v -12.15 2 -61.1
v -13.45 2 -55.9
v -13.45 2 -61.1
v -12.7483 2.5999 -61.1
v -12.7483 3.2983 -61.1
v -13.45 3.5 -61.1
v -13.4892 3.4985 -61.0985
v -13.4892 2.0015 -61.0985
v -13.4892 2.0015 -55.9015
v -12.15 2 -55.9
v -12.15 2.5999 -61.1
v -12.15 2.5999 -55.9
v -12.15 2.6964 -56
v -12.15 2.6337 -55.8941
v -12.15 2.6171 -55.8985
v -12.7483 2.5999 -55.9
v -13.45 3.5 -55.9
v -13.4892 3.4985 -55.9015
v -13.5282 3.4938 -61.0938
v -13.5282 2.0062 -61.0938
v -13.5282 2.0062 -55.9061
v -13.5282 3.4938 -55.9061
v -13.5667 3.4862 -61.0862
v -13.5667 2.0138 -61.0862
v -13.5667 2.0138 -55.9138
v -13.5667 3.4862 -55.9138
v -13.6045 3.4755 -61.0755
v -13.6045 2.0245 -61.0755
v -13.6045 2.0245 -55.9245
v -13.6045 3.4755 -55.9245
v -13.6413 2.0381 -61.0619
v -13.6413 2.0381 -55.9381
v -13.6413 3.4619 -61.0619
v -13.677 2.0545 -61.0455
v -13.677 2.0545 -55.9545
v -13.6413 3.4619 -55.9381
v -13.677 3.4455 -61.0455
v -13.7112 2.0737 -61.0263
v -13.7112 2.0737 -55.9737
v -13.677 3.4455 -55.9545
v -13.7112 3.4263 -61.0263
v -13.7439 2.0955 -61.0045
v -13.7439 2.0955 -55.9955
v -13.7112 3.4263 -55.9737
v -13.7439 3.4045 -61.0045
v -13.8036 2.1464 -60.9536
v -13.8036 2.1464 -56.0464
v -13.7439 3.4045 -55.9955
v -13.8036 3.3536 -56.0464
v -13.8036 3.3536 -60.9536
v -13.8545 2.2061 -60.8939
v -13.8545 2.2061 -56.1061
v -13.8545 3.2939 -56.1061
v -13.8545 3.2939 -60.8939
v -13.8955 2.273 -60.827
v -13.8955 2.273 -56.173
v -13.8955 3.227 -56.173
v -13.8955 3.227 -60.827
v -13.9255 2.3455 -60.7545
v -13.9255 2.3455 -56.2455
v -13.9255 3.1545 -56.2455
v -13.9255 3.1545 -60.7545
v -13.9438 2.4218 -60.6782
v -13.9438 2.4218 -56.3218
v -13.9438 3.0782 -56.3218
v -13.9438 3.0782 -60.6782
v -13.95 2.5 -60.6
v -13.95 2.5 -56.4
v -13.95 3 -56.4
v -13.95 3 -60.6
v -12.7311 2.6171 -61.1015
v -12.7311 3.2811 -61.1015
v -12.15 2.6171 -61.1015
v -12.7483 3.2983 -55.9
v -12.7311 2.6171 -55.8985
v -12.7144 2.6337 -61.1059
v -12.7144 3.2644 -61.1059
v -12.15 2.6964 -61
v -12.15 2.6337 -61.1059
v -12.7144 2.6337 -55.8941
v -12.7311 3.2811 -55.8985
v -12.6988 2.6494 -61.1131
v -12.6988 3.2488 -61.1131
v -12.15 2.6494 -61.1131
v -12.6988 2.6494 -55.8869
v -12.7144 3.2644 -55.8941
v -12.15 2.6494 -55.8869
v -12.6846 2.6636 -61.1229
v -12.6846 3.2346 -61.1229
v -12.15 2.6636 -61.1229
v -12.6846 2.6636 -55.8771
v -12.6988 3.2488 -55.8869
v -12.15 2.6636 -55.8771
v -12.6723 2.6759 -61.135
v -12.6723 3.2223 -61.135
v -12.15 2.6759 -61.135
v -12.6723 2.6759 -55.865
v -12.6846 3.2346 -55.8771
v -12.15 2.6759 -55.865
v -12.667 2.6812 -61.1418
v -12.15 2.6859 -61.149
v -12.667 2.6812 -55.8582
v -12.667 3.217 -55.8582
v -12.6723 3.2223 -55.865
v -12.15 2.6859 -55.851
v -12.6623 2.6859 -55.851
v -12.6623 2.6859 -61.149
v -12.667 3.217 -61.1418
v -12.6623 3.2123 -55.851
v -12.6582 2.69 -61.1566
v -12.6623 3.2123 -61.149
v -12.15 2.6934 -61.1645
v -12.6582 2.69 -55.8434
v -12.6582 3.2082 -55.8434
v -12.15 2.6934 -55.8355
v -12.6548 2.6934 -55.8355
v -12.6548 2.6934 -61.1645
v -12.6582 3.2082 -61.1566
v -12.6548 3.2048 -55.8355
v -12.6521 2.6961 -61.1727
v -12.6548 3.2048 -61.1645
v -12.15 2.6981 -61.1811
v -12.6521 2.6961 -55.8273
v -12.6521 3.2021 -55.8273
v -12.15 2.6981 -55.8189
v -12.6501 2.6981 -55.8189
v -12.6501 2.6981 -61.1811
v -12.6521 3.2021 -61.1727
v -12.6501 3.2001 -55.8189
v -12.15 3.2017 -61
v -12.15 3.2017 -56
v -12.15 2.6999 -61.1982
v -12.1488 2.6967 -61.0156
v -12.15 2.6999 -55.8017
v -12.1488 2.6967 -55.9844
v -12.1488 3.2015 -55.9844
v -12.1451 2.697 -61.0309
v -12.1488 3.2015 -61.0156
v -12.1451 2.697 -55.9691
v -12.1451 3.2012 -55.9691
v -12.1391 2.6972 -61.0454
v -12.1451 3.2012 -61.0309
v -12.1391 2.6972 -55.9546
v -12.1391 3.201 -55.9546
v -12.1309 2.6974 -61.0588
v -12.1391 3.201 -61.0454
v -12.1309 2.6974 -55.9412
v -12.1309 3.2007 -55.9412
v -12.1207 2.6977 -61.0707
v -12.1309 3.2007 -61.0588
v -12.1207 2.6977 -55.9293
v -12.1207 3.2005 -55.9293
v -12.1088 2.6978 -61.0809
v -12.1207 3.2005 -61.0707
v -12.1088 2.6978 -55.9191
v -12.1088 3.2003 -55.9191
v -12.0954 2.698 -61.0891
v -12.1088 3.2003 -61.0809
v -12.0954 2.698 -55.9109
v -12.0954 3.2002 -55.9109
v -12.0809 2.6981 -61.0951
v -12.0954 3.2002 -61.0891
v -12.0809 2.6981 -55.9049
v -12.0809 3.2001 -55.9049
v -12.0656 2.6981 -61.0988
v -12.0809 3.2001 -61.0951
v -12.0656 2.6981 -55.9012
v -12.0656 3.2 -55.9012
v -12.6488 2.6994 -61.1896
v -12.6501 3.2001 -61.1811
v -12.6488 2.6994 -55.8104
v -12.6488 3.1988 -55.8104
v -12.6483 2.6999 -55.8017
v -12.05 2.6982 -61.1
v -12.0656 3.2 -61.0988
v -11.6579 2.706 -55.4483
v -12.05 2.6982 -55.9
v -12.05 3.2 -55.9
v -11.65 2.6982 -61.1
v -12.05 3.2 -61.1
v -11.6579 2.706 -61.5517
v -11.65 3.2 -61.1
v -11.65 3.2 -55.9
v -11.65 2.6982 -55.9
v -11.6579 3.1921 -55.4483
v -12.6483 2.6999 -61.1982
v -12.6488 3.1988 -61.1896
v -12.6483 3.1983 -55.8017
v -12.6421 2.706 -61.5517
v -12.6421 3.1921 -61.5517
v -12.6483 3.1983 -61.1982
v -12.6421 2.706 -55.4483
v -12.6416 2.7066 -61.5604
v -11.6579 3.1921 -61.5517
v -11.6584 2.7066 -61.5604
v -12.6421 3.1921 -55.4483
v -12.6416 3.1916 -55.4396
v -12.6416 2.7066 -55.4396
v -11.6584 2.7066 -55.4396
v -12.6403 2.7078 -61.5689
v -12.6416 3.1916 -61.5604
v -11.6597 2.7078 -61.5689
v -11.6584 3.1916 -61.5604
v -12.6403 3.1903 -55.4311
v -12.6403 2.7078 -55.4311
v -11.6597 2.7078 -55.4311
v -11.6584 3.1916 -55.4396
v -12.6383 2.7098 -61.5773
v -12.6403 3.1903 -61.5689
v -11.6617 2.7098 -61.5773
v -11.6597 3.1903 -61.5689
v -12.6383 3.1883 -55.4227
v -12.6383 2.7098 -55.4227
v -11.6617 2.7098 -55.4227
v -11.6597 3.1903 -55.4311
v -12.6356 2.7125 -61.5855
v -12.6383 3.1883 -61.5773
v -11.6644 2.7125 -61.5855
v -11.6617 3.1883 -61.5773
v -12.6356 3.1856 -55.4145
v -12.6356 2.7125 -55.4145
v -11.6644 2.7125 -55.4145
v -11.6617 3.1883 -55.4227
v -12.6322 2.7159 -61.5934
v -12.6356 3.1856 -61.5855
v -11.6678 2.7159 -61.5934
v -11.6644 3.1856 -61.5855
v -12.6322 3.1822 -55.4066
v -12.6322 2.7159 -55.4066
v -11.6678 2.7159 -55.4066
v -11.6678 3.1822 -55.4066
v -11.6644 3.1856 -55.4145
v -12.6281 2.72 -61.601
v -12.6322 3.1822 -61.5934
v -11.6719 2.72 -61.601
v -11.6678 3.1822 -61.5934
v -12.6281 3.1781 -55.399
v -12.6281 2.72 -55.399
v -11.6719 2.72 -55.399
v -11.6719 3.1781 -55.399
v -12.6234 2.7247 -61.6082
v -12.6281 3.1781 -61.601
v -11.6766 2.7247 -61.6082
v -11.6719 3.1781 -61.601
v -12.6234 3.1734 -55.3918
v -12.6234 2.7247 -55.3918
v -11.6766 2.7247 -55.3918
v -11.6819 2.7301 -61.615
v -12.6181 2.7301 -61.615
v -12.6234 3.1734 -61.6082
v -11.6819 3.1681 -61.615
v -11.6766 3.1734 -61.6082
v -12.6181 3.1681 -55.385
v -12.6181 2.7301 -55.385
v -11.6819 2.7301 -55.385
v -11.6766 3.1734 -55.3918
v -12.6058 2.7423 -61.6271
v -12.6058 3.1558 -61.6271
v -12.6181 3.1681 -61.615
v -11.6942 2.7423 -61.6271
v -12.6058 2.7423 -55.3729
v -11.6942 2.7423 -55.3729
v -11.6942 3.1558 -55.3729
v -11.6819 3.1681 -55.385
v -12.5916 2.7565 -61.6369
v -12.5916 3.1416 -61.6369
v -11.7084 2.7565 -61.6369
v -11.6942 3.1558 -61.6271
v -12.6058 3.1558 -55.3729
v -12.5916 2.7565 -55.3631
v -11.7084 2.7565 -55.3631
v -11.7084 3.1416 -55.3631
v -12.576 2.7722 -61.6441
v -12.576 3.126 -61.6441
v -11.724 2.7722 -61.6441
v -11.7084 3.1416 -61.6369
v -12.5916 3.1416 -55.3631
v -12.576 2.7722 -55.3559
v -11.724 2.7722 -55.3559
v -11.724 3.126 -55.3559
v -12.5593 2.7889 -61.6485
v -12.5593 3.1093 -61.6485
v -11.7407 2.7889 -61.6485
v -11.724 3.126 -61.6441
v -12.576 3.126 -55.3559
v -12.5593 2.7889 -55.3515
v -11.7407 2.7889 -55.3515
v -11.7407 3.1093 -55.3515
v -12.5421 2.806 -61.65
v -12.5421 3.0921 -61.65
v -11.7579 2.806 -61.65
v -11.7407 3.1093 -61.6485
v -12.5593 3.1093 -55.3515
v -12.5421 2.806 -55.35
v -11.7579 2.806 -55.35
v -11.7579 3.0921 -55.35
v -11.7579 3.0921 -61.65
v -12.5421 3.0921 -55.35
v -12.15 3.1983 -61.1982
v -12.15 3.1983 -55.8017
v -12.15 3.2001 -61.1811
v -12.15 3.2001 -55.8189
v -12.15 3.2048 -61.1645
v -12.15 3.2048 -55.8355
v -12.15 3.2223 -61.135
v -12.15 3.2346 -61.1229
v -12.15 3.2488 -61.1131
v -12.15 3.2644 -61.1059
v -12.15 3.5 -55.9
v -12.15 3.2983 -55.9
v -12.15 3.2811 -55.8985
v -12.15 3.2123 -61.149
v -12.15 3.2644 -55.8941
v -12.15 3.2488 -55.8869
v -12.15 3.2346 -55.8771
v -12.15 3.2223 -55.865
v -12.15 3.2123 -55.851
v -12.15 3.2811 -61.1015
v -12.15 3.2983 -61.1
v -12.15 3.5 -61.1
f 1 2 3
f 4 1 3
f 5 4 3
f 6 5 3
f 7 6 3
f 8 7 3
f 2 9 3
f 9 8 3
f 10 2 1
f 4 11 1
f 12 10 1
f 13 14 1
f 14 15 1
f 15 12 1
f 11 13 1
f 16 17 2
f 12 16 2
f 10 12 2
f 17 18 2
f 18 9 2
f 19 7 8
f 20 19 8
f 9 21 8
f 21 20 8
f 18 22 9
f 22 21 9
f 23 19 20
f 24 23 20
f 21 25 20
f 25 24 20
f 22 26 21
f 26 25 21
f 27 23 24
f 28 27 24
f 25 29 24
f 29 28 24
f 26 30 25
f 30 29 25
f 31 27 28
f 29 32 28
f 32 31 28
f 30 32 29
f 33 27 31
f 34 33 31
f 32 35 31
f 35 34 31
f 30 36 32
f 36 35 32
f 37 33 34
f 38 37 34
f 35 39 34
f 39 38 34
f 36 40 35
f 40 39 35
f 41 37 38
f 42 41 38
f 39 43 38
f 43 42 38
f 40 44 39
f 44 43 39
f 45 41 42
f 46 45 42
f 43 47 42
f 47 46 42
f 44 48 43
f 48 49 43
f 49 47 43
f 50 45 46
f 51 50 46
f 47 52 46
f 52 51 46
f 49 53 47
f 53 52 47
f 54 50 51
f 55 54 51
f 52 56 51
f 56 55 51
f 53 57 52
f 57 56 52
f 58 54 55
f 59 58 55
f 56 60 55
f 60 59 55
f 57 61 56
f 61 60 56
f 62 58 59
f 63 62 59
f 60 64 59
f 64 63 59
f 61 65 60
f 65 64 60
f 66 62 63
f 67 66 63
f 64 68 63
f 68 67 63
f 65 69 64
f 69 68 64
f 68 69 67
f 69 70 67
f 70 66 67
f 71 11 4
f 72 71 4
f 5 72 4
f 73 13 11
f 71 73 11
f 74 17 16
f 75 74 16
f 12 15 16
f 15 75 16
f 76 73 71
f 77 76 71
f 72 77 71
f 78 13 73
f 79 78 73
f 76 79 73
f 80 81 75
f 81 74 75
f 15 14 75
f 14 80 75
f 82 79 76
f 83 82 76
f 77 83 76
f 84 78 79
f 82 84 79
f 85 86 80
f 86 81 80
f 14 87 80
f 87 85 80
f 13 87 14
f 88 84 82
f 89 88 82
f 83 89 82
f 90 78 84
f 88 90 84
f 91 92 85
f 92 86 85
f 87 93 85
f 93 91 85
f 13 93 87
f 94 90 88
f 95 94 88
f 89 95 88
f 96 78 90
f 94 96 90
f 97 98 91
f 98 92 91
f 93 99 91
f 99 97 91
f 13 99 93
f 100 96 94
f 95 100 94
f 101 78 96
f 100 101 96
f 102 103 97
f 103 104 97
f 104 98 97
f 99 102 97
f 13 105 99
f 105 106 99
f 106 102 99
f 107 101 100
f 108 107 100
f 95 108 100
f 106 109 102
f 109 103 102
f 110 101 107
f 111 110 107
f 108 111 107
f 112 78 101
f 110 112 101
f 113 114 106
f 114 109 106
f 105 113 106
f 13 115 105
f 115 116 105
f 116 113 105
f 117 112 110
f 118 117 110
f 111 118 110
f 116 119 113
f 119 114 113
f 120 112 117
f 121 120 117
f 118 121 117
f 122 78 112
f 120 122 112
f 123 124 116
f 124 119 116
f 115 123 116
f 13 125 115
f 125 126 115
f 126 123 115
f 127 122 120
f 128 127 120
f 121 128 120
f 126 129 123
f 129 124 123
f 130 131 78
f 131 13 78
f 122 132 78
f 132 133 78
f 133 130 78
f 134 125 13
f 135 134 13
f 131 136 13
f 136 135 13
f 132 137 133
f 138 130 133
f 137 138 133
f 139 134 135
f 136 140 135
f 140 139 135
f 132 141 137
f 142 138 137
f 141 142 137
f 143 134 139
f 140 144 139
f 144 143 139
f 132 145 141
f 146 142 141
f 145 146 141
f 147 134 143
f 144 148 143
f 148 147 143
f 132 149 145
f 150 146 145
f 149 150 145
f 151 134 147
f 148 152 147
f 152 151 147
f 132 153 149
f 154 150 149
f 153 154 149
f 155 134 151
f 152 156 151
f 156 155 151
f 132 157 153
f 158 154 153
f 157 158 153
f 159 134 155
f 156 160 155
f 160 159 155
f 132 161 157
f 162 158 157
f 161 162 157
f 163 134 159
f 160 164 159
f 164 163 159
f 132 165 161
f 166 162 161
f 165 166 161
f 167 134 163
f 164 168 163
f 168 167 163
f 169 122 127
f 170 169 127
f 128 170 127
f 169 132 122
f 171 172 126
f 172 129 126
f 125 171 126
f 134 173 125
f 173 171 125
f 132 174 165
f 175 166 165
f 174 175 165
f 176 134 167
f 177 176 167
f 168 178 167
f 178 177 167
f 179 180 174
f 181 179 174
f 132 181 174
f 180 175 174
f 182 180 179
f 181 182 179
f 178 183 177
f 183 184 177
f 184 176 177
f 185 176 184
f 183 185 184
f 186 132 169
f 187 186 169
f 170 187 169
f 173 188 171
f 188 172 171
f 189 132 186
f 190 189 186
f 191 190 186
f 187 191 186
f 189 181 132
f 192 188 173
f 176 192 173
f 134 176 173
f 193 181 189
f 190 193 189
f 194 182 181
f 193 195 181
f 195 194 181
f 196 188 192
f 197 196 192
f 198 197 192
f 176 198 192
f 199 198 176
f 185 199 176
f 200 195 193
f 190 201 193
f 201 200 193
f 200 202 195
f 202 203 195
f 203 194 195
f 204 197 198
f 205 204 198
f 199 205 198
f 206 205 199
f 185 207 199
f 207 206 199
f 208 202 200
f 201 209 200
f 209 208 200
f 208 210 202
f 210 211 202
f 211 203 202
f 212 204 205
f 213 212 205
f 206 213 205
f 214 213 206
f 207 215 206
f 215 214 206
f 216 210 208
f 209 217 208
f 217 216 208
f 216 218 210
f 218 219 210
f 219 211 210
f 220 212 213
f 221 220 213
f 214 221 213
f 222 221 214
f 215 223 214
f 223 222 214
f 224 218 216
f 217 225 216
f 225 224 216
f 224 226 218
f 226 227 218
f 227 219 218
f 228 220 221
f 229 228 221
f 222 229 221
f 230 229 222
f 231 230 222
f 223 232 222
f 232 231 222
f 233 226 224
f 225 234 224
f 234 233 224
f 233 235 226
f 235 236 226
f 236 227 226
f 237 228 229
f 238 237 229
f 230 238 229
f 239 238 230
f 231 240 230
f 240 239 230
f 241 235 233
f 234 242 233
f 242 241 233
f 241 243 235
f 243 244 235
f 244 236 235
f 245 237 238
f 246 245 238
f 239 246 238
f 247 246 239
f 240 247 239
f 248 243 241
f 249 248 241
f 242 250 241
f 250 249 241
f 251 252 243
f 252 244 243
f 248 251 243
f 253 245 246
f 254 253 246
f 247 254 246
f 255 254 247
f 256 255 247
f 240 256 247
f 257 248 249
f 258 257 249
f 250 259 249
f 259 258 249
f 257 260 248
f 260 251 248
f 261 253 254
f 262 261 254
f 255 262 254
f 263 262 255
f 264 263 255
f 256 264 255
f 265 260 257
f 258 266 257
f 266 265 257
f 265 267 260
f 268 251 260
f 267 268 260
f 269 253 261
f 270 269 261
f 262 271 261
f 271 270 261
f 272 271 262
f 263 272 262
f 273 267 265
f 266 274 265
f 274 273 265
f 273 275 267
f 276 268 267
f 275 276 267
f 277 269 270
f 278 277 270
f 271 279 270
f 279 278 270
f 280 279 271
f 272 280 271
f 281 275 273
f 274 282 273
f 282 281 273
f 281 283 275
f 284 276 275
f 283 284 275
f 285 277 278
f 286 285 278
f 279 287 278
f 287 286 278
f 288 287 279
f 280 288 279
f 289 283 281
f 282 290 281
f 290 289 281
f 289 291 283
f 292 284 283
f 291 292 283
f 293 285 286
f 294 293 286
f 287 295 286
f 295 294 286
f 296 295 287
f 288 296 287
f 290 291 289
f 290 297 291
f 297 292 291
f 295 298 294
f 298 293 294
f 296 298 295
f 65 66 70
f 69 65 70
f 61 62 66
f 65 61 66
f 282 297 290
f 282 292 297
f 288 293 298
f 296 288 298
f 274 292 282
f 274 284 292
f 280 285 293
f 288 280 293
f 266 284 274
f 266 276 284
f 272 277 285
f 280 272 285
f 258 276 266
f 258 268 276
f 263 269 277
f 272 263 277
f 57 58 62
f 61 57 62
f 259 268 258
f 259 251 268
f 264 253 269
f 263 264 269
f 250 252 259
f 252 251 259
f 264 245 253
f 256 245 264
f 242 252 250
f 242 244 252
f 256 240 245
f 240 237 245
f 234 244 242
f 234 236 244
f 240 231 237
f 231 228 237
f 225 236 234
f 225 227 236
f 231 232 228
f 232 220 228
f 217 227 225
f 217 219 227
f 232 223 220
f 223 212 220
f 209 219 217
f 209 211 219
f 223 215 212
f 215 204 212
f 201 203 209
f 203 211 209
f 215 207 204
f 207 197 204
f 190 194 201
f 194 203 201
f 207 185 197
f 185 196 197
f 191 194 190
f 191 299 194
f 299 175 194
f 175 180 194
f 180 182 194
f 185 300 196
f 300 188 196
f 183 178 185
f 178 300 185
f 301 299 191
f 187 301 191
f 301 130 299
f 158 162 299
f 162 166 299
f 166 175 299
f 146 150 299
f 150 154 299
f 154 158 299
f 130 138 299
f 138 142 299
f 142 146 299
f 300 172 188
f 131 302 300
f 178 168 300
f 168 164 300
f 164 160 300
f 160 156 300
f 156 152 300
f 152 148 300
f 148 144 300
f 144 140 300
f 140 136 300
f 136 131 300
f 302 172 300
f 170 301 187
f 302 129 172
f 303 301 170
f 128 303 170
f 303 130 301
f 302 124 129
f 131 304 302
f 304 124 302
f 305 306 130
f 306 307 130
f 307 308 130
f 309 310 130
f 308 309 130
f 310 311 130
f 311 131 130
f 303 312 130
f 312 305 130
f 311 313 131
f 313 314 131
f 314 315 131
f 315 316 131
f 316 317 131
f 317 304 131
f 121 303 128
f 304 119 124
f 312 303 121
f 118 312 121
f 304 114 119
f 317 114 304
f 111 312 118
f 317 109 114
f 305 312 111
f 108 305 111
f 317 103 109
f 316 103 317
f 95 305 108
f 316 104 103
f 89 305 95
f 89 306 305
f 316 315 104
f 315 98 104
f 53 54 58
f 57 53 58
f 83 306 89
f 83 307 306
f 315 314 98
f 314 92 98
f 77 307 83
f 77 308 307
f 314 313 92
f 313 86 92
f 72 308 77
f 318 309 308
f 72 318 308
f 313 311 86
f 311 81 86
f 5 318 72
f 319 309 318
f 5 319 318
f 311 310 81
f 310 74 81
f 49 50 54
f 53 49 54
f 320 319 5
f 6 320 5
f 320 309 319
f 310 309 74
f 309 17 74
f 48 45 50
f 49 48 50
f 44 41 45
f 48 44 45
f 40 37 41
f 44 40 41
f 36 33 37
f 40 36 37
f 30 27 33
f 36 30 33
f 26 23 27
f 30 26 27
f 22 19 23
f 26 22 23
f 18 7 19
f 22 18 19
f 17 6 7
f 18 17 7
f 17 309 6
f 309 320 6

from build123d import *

# Parameters (mm, degrees)
BOSS_EXTRUDE1_DEPTH      = 0.5
BOSS_EXTRUDE1_DEPTH_BACK = 1.3
SKETCH2_W                = 5.2
SKETCH2_H                = 1.5
SKETCH3_W                = 1
SKETCH3_H                = 0.501837325
BOSS_EXTRUDE2_DEPTH      = 0.55
BOSS_EXTRUDE2_TAPER      = 1
FILLET1_R                = 0.1
FILLET2_R                = 0.1
FILLET3_R                = 0.5


with BuildPart() as part:
    # Sketch2 → Boss-Extrude1 (new, two sides: drawn at the far end of the back side and taken through both)
    with BuildSketch(Plane(origin=(-12.65, 0, 0), x_dir=(0, 0, -1), z_dir=(1, 0, 0)).offset(-BOSS_EXTRUDE1_DEPTH_BACK)):
        with Locations((58.5, 2.75)):
            Rectangle(SKETCH2_W, SKETCH2_H)
    extrude(amount=BOSS_EXTRUDE1_DEPTH + BOSS_EXTRUDE1_DEPTH_BACK)

    # Sketch3 → Boss-Extrude2 (add)
    with BuildSketch(Plane.XY.offset(-55.9)):
        with Locations((-12.15, 2.949081338)):
            Rectangle(SKETCH3_W, SKETCH3_H)
    boss_extrude2 = extrude(amount=BOSS_EXTRUDE2_DEPTH, taper=BOSS_EXTRUDE2_TAPER)

    # Mirror1: Boss-Extrude2 across plane
    add(boss_extrude2.mirror(Plane.XY.offset(-58.5)))

    # Fillet1
    fillet1_edges = [part.edges().sort_by_distance(p)[0] for p in [
        (-12.4, 3.2, -55.9),
        (-12.65, 2.949081337, -55.9),
        (-12.4, 2.698162675, -55.9),
        (-11.659600286, 2.949081337, -55.35),
        (-12.15, 3.190399714, -55.35),
        (-12.640399714, 2.949081337, -55.35),
        (-12.15, 2.707762961, -55.35),
        (-12.4, 3.2, -61.1),
        (-11.659600286, 2.949081337, -61.65),
        (-12.15, 2.707762961, -61.65),
        (-12.640399714, 2.949081337, -61.65),
        (-12.15, 3.190399714, -61.65),
        (-12.4, 2.698162675, -61.1),
        (-12.65, 2.949081337, -61.1),
    ]]
    fillet(fillet1_edges, radius=FILLET1_R)

    # Fillet2
    fillet2_edges = [part.edges().sort_by_distance(p)[0] for p in [
        (-12.15, 2.949081337, -55.9),
        (-12.15, 2.949081337, -61.1),
    ]]
    fillet(fillet2_edges, radius=FILLET2_R)

    # Fillet3
    fillet3_edges = [part.edges().sort_by_distance(p)[0] for p in [
        (-13.95, 2.75, -55.9),
        (-13.95, 3.5, -58.5),
        (-13.95, 2.75, -61.1),
        (-13.95, 2, -58.5),
    ]]
    fillet(fillet3_edges, radius=FILLET3_R)


solid = part.part
